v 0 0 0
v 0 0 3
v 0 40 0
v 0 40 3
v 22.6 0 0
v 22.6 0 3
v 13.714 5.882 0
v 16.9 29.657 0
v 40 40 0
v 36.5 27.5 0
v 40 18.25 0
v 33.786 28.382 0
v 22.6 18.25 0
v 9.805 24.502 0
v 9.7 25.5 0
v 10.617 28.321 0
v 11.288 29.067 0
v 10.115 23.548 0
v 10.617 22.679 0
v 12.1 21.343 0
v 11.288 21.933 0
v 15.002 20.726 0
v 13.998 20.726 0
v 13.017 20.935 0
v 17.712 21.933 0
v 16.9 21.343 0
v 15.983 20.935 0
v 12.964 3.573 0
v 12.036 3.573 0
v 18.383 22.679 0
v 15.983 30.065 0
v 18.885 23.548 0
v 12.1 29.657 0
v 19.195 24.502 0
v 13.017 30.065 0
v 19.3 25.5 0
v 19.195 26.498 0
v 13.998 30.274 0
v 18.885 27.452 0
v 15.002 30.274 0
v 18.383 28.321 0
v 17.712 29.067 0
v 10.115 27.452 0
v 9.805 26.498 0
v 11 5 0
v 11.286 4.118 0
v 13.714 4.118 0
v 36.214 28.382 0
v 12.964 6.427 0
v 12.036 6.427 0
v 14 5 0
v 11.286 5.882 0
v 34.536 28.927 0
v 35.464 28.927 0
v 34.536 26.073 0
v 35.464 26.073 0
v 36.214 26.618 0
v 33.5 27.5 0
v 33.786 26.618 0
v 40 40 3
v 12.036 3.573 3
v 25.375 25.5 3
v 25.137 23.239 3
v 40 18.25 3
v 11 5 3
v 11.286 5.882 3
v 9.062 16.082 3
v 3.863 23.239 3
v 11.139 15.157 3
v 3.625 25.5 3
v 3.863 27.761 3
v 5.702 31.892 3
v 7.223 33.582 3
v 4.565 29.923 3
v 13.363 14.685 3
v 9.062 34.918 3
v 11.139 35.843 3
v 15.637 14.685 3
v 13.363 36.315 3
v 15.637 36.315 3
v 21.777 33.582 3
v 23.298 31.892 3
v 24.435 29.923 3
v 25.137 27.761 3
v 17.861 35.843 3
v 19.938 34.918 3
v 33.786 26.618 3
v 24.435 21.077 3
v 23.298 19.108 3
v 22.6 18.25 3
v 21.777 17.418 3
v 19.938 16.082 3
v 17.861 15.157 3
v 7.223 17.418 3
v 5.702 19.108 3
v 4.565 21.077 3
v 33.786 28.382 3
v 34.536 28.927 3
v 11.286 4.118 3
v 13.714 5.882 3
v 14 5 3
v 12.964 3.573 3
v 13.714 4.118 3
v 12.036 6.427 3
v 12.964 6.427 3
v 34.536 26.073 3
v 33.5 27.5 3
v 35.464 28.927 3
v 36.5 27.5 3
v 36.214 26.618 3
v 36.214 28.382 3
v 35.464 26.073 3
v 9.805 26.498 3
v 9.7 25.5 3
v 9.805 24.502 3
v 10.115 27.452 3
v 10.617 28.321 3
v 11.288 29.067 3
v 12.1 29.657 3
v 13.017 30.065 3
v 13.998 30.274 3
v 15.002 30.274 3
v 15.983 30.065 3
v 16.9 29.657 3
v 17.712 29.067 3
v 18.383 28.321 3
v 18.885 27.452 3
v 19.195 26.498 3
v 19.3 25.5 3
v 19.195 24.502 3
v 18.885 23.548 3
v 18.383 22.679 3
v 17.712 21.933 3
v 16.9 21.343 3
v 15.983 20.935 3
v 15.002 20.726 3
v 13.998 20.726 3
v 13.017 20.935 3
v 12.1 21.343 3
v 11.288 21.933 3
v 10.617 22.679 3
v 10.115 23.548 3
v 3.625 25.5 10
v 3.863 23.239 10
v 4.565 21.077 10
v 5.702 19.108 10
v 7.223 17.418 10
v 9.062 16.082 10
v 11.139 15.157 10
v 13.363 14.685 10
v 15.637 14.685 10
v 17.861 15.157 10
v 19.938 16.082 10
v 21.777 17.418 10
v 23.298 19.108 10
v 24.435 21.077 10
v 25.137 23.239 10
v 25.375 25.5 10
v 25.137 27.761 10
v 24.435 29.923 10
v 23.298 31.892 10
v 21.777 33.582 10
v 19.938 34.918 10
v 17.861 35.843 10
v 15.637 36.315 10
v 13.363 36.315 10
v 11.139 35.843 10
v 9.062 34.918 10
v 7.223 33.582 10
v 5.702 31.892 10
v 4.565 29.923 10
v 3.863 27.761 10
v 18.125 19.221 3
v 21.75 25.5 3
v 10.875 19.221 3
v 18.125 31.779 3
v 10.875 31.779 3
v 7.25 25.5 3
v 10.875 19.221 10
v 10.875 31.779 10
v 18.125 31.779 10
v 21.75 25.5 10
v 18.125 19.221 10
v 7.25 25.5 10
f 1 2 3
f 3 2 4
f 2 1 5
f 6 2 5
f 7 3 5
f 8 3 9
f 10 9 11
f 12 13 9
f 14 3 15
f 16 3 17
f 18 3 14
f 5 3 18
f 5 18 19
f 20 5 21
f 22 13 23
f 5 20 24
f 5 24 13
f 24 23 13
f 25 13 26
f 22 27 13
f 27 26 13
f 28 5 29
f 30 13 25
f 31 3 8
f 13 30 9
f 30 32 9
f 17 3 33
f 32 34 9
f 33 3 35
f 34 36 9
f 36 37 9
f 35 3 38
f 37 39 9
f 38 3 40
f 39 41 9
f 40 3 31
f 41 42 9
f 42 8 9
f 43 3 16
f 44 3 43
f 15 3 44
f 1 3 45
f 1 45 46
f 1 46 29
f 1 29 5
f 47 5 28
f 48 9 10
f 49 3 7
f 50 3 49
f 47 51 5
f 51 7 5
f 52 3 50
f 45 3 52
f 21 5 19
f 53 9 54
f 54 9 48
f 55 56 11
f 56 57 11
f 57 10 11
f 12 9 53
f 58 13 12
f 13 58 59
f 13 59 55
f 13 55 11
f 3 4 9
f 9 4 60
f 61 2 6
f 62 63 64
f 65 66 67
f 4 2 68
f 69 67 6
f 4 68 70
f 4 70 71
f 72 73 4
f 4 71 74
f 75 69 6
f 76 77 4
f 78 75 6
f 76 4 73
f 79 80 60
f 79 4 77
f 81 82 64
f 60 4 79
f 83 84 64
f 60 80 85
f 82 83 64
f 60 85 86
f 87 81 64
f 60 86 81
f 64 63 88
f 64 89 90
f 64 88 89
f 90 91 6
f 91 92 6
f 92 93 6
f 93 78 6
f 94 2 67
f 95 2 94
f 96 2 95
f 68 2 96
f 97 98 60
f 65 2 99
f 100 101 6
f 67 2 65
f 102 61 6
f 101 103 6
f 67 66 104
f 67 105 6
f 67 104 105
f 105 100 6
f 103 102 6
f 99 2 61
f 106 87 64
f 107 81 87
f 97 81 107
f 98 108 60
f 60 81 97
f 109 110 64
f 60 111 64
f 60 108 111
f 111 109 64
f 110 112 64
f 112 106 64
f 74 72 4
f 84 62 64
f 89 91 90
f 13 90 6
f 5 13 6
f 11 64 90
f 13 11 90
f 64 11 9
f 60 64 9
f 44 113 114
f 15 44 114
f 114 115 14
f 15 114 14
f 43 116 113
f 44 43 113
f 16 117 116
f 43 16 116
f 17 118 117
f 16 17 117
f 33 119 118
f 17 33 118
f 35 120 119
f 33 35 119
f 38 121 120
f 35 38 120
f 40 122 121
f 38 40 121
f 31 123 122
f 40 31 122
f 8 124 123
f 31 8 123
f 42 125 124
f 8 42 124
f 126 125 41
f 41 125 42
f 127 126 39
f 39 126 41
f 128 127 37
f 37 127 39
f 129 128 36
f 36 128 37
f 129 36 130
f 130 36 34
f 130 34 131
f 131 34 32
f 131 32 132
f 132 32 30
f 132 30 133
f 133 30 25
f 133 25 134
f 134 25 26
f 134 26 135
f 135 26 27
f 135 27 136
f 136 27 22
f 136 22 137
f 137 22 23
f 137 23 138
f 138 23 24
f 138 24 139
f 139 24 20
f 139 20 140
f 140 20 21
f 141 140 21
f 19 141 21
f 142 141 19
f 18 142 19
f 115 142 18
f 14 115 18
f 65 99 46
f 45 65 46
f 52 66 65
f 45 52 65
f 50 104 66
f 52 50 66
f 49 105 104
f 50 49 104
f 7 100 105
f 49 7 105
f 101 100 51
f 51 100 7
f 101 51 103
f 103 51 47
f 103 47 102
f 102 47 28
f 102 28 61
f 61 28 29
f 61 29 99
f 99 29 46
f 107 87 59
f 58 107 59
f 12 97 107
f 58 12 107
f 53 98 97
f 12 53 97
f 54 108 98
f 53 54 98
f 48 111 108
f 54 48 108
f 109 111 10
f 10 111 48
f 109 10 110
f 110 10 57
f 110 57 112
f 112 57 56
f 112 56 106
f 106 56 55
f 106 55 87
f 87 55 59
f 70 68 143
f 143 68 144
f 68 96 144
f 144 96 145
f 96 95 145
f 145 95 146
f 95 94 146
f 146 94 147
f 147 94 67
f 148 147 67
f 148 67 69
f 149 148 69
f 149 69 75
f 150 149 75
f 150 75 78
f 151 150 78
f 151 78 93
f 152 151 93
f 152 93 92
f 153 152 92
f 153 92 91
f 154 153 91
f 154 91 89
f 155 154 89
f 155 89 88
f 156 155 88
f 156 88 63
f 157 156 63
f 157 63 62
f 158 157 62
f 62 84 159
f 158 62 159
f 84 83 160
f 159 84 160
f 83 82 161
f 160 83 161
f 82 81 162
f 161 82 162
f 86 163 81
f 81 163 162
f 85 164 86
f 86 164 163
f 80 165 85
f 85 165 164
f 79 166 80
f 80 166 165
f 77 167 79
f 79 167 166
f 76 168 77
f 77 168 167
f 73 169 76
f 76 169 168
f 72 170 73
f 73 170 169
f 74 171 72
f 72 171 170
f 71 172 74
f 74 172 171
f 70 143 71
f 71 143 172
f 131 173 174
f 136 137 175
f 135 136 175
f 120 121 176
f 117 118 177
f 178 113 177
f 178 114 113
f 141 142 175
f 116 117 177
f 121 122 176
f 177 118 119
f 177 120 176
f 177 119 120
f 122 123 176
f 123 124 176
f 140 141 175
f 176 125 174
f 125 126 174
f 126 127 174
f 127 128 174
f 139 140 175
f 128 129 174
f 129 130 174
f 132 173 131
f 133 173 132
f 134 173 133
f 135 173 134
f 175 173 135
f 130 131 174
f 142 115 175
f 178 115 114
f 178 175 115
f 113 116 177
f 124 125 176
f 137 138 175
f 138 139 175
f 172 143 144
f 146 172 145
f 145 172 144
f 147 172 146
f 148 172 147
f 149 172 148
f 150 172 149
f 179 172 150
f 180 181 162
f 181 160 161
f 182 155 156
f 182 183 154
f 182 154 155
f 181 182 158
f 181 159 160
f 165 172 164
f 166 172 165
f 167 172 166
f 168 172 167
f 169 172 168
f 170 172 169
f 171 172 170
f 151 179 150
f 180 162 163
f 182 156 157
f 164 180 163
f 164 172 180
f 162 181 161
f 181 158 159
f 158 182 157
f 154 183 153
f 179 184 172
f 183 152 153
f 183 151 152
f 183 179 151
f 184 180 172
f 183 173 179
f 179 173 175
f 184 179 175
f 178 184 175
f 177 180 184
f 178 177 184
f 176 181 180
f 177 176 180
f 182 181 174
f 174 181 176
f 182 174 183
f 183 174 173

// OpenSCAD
barwidth = 20;
width_ridge=4;
widthNema17=43;
nema17holeOffset =6;
nema17innerHole=25/2;
nema17Shaft=8/2;
motorThickNess=5;
offsetx =9;
offsety  =9;
barpositionz=30;
rodwidth =8;
nutwidth=14.5;

height = 40;
width = 40;

thickness=3;
spacing_bars = 50;
largeCircle = 70.0;
holeSize=5.5;

holes = [
	[nutwidth-2,5,3],
	[width-5,height-nutwidth+2,3]
];



difference() {
union() {

cube([width,height,thickness],false);

translate([nutwidth,height-nutwidth ,3]) 
	cylinder(h=7,r=nutwidth/2*1.5, center = false, $fs=1);

}

translate([width-nutwidth*1.2,0,0]) 
cube([width-nutwidth*1.5,height-nutwidth*1.5,thickness],false);

translate([nutwidth,height-nutwidth,thickness]) {
	cylinder(h=100,r=nutwidth/2, center = false, $fn =6);

	translate([0,0,(-thickness-1)]) 
	cylinder(h=100,r=rodwidth/2*1.2, center = false, $fs=1);
}

	for(i = holes) {
		translate([ i[0],i[1],0])
			cylinder(h=100,r=i[2]/2, center = false, $fs=1);
	}

}
